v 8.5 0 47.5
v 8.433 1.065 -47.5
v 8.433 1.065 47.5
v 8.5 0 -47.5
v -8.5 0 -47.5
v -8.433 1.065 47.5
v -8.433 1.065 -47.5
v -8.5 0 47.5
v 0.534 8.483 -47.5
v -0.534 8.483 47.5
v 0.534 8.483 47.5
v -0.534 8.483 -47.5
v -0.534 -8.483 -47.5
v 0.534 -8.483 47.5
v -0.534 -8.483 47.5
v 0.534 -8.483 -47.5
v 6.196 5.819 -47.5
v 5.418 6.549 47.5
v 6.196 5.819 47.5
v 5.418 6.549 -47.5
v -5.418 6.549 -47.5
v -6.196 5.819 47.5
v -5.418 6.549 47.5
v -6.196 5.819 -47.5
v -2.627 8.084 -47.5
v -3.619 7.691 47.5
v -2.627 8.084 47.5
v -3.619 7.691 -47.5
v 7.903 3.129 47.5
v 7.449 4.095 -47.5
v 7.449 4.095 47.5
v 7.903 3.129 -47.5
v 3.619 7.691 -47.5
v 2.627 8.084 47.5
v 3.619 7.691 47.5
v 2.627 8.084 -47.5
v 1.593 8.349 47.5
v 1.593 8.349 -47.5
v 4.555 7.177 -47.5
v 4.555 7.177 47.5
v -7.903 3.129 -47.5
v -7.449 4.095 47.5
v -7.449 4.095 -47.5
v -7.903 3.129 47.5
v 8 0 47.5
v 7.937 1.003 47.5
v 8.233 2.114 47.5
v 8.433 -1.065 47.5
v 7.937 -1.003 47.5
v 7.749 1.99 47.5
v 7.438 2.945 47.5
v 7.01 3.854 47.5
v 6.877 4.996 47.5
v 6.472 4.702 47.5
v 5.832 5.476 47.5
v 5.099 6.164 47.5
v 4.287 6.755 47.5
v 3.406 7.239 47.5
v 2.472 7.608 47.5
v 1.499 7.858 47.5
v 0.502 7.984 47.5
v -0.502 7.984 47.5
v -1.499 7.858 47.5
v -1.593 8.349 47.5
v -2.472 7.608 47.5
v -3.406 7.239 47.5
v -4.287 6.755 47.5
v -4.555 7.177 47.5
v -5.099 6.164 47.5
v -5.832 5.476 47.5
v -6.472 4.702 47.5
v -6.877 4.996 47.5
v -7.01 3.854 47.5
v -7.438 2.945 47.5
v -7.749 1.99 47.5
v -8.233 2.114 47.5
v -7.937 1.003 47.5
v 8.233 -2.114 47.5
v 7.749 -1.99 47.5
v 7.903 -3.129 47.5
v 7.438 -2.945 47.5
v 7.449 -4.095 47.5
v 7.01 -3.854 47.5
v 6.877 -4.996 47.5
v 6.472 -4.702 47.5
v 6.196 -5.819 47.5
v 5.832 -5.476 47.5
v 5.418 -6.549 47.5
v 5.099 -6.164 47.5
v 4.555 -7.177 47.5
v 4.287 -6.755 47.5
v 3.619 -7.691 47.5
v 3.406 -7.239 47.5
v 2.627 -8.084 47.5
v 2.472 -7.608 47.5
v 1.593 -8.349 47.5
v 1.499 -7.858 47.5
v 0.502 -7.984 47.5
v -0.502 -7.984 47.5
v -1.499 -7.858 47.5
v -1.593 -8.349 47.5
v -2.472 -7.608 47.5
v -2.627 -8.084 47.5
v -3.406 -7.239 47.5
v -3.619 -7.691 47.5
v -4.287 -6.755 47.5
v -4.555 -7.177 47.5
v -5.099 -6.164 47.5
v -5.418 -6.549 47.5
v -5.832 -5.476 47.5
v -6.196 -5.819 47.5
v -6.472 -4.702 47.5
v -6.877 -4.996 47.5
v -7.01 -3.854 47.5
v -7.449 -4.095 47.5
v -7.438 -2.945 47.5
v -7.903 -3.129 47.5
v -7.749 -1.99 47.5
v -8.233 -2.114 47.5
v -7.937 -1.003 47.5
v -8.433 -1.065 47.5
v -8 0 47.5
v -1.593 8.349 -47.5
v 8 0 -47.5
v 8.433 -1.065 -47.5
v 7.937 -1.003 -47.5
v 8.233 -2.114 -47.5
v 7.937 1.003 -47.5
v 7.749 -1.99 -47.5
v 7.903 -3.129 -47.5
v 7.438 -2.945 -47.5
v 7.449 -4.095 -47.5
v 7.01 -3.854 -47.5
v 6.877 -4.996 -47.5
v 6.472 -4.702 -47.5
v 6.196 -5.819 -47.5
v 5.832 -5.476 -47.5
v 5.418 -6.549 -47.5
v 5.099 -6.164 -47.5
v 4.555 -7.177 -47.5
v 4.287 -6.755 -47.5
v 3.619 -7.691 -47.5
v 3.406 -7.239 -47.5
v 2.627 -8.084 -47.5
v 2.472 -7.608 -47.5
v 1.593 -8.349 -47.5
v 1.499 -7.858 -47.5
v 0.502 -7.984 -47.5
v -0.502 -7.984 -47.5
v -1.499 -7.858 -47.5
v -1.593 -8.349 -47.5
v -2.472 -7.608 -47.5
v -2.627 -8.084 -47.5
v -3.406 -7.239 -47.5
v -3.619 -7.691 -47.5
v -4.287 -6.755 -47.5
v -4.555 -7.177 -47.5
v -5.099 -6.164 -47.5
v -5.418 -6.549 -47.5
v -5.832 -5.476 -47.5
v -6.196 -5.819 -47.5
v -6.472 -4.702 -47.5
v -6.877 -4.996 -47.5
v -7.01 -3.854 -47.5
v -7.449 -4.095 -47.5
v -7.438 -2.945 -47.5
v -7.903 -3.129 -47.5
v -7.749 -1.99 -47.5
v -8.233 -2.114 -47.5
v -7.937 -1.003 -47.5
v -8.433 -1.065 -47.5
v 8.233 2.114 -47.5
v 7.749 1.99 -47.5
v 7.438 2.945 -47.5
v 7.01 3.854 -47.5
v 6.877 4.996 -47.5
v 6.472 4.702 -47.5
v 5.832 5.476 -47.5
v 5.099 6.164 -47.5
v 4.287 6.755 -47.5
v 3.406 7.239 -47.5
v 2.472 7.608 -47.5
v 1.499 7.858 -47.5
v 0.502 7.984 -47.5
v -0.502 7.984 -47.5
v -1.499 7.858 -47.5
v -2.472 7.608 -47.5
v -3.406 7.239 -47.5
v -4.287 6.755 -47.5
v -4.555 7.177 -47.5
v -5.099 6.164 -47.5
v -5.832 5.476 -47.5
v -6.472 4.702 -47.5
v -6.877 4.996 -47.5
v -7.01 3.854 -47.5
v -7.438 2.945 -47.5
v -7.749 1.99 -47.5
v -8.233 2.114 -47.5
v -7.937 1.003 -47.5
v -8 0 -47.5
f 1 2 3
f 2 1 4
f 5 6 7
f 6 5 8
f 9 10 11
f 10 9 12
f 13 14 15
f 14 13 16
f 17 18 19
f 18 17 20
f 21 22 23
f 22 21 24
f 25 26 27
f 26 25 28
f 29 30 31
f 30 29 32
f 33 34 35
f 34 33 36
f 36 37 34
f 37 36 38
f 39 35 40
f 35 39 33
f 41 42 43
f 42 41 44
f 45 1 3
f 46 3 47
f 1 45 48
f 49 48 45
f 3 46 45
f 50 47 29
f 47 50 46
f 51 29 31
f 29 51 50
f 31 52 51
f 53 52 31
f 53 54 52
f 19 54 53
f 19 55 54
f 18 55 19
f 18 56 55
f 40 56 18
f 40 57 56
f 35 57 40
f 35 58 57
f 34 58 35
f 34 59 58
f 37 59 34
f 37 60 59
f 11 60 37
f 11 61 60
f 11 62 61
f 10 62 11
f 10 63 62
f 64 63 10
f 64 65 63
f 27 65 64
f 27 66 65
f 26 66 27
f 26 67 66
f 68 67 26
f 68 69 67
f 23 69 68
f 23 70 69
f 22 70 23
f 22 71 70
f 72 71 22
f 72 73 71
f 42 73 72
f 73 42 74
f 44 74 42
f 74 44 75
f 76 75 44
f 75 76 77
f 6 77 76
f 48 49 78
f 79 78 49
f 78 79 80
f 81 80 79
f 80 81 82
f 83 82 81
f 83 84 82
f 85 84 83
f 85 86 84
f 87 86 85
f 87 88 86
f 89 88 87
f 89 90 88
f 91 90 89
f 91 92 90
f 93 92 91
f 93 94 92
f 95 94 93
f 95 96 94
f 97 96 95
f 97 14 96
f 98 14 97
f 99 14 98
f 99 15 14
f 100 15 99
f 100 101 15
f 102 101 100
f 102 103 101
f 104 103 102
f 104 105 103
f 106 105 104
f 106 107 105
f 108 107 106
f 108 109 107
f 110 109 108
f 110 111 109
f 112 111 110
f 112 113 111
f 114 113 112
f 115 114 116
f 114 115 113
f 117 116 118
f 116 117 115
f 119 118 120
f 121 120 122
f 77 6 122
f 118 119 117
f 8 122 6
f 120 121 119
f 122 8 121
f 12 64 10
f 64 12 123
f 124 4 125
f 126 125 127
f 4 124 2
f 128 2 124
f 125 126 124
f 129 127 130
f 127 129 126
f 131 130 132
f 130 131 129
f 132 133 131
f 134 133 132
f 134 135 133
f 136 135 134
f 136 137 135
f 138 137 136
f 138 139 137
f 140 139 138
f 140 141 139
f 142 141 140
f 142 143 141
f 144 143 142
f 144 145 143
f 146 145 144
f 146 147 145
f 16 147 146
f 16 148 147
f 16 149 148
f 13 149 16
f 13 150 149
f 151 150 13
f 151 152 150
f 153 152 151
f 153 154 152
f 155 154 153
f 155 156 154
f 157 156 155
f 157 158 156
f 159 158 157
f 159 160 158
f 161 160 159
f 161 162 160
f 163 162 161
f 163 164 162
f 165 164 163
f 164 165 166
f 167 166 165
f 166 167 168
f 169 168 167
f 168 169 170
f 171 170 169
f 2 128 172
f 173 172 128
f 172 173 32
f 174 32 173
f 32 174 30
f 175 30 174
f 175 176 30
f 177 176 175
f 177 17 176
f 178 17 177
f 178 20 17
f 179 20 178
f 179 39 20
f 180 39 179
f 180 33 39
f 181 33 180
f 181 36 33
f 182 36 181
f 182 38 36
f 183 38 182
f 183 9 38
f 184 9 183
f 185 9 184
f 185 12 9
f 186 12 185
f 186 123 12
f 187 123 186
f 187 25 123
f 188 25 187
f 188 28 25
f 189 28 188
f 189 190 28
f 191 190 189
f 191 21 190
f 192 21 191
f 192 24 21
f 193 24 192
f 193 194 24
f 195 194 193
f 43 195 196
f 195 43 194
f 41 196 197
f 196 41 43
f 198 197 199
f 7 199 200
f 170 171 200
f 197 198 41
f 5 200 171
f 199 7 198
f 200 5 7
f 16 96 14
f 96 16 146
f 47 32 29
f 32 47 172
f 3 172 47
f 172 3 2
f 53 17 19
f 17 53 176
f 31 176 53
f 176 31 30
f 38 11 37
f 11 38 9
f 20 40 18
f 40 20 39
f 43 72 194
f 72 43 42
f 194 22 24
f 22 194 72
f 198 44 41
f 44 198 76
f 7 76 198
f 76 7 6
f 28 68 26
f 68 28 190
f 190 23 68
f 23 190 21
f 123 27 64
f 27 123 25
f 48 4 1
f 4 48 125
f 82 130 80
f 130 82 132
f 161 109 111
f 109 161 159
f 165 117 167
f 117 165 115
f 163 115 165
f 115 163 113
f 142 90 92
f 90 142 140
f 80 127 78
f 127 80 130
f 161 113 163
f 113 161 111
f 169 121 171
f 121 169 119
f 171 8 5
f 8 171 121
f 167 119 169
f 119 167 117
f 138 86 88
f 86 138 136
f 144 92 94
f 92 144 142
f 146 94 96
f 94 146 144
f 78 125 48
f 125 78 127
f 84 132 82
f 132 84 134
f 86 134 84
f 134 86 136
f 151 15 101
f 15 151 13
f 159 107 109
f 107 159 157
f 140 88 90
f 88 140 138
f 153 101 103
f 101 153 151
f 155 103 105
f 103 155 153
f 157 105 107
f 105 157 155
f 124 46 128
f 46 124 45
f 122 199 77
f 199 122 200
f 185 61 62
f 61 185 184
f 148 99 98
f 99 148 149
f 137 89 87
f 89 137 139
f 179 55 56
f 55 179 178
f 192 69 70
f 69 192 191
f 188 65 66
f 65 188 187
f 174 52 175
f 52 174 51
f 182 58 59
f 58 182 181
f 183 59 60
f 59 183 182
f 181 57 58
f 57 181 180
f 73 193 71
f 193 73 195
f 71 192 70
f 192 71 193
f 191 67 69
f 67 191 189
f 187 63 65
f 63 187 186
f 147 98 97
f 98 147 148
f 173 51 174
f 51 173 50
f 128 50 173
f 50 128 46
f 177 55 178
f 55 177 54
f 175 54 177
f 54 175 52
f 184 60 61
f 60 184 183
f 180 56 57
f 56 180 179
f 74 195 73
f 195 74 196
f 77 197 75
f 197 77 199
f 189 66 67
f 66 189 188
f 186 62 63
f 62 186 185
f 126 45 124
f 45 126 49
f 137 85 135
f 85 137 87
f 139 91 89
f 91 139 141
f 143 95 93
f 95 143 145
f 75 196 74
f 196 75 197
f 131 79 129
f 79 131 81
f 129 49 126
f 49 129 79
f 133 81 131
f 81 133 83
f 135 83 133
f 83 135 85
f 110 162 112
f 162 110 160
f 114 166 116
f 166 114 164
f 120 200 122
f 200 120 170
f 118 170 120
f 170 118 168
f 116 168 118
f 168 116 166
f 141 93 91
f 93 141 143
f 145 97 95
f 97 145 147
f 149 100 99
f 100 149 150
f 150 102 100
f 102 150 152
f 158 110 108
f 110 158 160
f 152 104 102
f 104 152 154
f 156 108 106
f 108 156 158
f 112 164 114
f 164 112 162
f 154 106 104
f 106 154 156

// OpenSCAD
$fn = 50;


difference() {
	union() {
		translate(v = [0, 0, -47.5000000000]) {
			cylinder(h = 95, r = 8.5000000000);
		}
	}
	union() {
		translate(v = [0, 0, -100.0000000000]) {
			cylinder(h = 200, r = 8);
		}
	}
}
